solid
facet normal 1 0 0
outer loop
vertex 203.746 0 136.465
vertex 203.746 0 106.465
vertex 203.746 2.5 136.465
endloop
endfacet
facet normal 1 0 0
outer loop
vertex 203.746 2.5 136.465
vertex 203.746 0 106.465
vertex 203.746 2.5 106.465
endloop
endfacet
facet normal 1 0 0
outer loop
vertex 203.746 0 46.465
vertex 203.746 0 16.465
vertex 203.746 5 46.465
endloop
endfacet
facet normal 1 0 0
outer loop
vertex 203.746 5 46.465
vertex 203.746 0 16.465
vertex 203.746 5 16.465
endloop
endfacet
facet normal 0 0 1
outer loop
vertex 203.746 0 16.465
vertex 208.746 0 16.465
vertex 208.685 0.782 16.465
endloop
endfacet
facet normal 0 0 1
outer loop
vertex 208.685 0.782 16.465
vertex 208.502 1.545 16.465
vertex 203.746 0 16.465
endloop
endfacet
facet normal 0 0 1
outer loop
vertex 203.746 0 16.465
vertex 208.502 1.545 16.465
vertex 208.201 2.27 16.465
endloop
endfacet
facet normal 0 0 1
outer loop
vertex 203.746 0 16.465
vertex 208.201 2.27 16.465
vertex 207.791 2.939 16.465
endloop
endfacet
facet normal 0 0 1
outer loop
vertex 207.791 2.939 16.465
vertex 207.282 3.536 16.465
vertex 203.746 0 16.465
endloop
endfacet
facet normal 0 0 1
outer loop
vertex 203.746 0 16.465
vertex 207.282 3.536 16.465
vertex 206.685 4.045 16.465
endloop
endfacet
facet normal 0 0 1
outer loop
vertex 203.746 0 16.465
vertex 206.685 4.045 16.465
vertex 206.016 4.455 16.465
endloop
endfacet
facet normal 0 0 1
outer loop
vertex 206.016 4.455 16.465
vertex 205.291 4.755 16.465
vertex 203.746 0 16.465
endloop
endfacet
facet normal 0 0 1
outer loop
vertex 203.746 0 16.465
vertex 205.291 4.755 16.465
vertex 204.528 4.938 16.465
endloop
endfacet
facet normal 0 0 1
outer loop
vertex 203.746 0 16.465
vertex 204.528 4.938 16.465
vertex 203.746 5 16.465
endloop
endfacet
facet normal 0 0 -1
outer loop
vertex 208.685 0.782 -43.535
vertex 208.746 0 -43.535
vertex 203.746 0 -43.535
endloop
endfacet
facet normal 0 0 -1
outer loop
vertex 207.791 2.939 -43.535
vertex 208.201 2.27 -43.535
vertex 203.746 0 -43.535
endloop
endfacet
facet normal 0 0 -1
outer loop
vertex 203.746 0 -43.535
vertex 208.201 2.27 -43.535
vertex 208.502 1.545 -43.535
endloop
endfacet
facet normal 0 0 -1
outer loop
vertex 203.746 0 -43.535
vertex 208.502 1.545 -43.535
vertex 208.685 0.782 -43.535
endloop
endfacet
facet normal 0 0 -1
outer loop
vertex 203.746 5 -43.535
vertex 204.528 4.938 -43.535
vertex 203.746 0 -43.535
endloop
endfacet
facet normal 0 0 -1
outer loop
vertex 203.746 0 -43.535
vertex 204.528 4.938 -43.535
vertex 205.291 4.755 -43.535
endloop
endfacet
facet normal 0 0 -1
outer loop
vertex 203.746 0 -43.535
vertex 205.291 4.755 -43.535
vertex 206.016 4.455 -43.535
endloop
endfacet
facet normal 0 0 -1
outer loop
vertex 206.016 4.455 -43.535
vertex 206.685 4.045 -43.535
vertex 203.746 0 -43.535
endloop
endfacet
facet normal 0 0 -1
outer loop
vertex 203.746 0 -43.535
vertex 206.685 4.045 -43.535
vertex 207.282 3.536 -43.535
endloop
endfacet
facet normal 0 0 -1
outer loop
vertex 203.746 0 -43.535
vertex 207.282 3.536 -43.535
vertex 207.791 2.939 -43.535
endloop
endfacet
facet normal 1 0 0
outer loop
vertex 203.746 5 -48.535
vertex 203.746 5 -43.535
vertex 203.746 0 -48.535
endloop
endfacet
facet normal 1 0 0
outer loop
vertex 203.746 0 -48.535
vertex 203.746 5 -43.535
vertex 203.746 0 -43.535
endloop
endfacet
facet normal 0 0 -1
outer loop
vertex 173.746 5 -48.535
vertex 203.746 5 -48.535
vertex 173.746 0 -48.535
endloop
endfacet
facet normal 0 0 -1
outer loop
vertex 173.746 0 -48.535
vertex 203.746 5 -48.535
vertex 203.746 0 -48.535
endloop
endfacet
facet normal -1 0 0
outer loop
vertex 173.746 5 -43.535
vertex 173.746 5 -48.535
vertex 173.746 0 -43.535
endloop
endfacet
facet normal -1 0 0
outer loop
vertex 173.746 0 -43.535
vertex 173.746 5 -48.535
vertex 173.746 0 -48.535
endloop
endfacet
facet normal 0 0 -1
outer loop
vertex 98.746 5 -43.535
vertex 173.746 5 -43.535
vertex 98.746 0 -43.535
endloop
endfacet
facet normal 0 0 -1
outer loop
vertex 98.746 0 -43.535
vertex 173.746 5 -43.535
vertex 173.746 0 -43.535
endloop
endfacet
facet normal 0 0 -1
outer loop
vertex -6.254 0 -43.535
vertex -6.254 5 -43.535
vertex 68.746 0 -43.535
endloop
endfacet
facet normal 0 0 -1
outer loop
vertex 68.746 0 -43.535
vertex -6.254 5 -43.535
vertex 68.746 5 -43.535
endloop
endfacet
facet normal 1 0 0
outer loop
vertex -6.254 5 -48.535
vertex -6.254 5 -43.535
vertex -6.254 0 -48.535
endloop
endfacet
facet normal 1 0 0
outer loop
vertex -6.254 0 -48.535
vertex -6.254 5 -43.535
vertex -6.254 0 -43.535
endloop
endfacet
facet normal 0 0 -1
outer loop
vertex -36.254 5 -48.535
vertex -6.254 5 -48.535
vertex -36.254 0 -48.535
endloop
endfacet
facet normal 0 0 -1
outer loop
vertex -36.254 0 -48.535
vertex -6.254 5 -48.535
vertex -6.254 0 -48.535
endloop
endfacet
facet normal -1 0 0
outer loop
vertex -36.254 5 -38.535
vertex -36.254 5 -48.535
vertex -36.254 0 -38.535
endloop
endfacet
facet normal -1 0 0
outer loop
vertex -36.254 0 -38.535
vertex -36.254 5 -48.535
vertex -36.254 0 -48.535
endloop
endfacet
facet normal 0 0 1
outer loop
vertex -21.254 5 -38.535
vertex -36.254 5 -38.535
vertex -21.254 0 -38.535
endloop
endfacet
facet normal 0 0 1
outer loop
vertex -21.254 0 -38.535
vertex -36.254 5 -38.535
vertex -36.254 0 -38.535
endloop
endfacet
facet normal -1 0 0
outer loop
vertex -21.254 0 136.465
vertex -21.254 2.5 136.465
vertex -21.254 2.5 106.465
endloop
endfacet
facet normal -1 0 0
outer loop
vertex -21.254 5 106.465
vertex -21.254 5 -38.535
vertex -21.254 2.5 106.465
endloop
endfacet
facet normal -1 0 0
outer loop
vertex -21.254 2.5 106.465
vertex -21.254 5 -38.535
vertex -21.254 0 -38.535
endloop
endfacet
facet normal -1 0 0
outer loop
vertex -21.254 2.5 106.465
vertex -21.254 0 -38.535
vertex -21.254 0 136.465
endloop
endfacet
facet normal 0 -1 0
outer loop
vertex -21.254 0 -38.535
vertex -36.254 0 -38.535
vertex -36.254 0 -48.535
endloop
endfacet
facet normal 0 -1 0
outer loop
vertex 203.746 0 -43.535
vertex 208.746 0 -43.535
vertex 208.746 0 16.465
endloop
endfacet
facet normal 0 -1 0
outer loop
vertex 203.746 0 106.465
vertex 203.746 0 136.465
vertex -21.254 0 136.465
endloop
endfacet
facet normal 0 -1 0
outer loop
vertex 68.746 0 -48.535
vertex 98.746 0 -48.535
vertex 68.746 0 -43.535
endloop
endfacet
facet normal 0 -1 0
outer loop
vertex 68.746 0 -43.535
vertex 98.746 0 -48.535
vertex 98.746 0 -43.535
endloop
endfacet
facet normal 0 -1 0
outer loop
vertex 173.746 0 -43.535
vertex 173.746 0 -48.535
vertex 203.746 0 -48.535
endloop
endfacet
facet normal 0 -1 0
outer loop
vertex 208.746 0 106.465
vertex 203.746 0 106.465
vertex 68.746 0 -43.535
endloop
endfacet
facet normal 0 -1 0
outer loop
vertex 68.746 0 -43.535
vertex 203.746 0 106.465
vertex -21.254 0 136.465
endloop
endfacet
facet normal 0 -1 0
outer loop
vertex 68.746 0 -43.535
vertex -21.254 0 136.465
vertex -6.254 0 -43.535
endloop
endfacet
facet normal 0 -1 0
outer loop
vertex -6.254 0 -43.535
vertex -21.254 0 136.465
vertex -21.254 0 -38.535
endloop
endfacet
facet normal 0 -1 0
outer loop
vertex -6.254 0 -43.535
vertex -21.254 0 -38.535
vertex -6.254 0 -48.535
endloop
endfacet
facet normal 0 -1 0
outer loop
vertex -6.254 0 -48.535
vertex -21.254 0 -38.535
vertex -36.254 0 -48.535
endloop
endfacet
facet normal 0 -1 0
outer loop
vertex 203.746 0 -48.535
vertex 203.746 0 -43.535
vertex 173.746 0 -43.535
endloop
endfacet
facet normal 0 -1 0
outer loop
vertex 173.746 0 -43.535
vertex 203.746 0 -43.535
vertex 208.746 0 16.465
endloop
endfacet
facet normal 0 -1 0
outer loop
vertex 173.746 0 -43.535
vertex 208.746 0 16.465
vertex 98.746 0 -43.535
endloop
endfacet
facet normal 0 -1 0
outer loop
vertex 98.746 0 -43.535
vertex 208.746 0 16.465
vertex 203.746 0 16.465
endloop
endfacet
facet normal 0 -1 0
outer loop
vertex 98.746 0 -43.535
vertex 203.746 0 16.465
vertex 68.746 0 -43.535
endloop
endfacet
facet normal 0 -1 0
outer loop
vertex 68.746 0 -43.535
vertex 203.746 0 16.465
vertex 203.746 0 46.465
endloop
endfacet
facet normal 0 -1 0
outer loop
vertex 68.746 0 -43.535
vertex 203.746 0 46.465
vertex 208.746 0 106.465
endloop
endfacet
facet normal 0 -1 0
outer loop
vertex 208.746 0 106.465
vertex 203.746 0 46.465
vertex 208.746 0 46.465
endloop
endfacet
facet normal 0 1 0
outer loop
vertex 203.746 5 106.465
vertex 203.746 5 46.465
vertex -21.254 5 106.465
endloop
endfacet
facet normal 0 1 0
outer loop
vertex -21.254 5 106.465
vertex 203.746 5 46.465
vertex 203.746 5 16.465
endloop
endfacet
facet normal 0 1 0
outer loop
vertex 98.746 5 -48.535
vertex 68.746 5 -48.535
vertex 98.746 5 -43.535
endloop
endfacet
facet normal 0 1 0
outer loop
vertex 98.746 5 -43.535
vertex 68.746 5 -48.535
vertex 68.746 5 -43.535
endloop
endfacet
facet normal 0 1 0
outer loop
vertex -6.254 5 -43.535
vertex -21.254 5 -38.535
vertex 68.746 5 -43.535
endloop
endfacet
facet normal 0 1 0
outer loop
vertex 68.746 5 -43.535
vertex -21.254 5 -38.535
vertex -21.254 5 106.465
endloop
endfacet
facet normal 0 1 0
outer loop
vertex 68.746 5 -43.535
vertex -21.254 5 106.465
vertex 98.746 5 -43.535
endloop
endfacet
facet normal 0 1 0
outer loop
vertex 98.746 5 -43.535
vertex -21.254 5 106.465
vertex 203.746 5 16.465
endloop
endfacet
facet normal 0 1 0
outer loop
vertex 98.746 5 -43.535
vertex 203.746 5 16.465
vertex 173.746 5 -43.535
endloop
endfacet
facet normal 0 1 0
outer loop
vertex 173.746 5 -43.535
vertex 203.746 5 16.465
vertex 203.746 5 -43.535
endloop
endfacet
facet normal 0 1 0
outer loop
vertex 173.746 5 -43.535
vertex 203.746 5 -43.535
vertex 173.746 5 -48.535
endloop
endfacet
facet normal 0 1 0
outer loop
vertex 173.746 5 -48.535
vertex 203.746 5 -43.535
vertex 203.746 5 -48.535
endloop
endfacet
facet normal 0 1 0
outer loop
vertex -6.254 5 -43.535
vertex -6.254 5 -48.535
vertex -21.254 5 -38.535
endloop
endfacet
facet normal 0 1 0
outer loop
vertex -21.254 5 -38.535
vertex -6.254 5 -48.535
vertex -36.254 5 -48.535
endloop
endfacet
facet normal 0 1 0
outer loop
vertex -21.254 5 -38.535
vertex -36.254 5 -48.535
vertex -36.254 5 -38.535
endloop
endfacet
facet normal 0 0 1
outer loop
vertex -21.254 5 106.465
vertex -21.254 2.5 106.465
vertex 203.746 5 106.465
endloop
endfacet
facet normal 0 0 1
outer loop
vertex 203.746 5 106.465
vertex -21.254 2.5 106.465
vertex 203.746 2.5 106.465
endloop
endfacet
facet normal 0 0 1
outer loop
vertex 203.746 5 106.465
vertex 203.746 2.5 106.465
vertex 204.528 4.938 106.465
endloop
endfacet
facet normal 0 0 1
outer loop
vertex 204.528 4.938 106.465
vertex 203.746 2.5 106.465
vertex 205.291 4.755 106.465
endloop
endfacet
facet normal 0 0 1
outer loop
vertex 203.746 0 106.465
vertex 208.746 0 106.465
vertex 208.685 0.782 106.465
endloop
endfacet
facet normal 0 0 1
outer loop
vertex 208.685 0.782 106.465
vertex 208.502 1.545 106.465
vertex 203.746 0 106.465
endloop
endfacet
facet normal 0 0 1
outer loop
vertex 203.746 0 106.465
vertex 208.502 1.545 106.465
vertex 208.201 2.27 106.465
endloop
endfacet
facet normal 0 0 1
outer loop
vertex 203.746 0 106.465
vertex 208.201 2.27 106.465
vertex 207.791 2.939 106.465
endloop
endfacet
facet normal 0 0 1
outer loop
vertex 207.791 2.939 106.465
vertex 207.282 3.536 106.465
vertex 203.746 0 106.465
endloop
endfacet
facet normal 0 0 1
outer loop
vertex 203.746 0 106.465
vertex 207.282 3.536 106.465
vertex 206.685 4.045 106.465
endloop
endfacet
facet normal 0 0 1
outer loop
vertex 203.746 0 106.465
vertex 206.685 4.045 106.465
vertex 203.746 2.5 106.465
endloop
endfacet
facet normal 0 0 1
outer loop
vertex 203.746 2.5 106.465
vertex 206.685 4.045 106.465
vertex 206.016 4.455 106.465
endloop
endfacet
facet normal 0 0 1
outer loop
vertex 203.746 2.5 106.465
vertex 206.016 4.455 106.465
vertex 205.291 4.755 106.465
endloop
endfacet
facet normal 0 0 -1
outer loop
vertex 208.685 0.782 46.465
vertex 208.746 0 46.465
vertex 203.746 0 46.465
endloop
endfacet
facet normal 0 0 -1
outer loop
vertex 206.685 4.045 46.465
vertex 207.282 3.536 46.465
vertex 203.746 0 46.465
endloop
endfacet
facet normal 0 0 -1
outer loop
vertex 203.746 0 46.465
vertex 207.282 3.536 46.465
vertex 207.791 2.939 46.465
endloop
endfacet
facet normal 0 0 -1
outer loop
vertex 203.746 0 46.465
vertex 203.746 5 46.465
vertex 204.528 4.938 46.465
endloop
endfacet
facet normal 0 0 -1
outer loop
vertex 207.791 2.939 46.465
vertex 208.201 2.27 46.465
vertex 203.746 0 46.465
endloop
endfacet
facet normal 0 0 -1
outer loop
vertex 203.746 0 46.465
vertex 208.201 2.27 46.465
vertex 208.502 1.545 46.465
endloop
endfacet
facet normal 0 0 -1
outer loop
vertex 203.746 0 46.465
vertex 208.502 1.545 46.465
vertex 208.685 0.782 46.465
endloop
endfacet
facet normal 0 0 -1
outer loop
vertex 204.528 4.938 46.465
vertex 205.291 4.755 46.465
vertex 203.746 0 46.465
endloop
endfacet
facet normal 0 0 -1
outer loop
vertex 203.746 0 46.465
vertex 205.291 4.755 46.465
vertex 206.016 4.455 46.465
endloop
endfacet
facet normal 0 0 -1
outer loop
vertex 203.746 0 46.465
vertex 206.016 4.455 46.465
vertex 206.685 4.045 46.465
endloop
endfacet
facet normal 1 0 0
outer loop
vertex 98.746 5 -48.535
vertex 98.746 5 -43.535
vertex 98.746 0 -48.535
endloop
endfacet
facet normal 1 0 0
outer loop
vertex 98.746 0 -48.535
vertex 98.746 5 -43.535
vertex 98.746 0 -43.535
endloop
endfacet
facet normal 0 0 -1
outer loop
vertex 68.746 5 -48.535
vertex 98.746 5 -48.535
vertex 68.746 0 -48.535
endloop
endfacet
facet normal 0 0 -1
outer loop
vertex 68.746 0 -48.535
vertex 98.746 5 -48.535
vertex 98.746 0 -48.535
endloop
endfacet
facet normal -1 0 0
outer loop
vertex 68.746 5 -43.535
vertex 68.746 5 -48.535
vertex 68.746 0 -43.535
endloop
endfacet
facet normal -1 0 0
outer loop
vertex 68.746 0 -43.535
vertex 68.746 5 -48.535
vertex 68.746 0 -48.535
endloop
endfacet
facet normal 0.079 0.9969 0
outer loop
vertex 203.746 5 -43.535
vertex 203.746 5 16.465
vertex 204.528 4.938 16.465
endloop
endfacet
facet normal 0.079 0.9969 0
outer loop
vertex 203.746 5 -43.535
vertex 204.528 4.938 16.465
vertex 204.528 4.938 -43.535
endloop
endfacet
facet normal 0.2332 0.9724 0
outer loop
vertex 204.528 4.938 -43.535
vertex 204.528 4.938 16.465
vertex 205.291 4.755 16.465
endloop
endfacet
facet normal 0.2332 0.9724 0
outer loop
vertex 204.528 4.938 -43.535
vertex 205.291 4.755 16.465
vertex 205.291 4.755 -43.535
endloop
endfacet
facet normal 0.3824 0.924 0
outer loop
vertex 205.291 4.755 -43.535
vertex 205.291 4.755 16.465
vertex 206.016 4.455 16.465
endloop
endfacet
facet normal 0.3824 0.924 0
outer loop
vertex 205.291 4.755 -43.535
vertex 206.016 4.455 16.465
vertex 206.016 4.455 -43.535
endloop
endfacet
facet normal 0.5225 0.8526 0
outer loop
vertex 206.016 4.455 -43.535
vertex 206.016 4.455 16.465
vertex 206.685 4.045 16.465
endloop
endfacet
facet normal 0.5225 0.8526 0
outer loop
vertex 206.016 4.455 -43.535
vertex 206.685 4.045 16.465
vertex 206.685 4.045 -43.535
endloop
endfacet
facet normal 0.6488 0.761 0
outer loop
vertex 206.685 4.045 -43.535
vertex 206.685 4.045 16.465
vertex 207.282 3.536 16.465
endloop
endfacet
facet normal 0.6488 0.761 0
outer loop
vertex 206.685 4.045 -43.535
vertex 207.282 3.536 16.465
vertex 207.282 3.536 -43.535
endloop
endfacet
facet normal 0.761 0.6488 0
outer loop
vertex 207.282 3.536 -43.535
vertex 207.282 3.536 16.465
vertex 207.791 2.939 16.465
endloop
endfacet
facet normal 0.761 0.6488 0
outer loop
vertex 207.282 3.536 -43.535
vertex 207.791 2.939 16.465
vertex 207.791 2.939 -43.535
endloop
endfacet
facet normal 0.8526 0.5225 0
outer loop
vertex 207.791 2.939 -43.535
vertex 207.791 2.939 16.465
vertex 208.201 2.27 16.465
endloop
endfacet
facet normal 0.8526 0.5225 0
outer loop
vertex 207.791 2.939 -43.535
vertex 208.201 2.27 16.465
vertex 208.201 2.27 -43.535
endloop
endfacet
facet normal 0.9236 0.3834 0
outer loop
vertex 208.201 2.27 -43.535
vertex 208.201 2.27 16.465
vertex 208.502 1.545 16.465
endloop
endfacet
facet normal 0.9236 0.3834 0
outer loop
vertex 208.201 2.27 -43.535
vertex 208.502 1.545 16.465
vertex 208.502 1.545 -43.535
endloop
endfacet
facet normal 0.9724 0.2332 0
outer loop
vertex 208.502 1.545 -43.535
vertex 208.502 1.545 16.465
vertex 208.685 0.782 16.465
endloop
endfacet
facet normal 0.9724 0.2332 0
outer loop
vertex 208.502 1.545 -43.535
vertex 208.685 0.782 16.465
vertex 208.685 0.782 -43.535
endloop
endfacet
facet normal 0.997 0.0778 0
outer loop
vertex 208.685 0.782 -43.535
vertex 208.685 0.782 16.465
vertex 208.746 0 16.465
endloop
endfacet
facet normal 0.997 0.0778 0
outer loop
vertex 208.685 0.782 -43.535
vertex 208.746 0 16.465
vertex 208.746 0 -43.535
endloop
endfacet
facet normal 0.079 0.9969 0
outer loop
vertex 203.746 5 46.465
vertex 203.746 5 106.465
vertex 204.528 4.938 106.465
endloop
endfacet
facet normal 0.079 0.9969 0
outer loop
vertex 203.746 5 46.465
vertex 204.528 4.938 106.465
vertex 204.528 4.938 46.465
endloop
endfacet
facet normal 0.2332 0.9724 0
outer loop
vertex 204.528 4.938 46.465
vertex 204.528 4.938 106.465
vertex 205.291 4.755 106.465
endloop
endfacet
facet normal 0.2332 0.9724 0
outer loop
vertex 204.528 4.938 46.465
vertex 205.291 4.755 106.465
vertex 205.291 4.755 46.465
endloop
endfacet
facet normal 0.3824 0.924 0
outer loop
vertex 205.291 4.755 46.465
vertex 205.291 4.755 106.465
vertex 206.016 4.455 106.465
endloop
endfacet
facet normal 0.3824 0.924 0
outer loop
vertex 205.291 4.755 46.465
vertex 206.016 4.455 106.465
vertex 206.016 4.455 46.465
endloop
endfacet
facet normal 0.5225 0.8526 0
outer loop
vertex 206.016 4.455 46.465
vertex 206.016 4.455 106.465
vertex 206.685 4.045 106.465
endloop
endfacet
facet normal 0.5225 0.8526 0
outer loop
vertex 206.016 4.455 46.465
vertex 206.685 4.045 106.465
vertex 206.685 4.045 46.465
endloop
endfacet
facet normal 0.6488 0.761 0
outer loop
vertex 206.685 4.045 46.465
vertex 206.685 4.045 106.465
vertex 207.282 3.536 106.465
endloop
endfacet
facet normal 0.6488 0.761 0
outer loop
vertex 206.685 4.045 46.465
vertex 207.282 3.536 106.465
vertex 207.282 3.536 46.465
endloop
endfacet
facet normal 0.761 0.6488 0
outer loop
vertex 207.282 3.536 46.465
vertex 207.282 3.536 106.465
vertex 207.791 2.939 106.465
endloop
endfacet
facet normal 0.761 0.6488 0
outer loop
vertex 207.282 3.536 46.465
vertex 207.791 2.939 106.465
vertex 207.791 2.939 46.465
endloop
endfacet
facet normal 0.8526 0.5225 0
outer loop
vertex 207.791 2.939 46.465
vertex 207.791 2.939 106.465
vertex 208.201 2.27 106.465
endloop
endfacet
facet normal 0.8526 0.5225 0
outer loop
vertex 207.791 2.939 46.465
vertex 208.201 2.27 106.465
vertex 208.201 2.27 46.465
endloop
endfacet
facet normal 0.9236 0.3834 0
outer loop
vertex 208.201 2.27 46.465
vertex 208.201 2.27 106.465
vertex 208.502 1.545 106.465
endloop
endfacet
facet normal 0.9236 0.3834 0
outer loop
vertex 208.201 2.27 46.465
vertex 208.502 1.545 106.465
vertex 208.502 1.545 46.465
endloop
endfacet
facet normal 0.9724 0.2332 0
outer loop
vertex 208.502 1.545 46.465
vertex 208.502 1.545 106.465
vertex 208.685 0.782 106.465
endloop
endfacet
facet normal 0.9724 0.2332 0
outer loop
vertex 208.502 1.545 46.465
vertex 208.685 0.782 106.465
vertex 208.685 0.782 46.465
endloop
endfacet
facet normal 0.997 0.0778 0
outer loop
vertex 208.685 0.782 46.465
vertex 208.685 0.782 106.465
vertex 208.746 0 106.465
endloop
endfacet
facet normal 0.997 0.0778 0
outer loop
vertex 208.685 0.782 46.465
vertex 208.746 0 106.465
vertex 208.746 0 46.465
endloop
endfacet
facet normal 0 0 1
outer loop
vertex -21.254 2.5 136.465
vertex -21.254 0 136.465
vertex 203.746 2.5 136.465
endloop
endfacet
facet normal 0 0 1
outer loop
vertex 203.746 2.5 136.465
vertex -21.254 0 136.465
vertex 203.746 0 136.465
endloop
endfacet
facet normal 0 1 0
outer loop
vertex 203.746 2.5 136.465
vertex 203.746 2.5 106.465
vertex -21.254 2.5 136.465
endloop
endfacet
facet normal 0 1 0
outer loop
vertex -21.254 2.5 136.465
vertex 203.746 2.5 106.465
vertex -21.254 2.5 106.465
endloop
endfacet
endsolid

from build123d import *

# Parameters (mm, degrees)
SKETCH_1_W          = 5
SKETCH_1_H          = 60
SKETCH_1_W_2        = 30
SKETCH_1_H_2        = 5
SKETCH_1_W_3        = 15
EXTRUDE_1_DEPTH     = 5
FILLET_1_R          = 5
SKETCH_2_W          = 239.490005879
SKETCH_2_H          = 154.751616696
CUT_EXTRUDE_1_DEPTH = 355.488579047
SKETCH_3_W          = 30
SKETCH_3_H          = 2.5
CUT_EXTRUDE_2_DEPTH = 277.129805813


with BuildPart() as part:
    # 草圖1 → 填料-伸長1 (new body)
    with BuildSketch(Plane(origin=(0, 0, 0), x_dir=(1, 0, 0), z_dir=(0, 1, 0))):
        Polygon((198.746286718, -286.464902661), (198.746286718, -256.464902661), (183.246286718, -256.464902661), (183.246286718, -266.464902661), (124.746286718, -266.464902661), (124.746286718, -262.464902661), (109.246286718, -262.464902661), (109.246286718, -266.464902661), (-21.253713282, -266.464902661), (-21.253713282, 38.535097339), (-36.253713282, 38.535097339), (-36.253713282, 43.535097339), (203.746286718, 43.535097339), (203.746286718, -286.464902661), align=None)
        with Locations((206.246286718, -256.464902661)):
            Rectangle(SKETCH_1_W, SKETCH_1_H)
        with Locations((206.246286718, 13.535097339)):
            Rectangle(SKETCH_1_W, SKETCH_1_H)
        with Locations((188.746286718, 46.035097339)):
            Rectangle(SKETCH_1_W_2, SKETCH_1_H_2)
        with Locations((-21.253713282, 46.035097339)):
            Rectangle(SKETCH_1_W_2, SKETCH_1_H_2)
        with Locations((91.246286718, 46.035097339)):
            Rectangle(SKETCH_1_W_3, SKETCH_1_H_2)
        with Locations((76.246286718, 46.035097339)):
            Rectangle(SKETCH_1_W_3, SKETCH_1_H_2)
        with Locations((206.246286718, -166.464902661)):
            Rectangle(SKETCH_1_W, SKETCH_1_H)
        with Locations((206.246286718, -76.464902661)):
            Rectangle(SKETCH_1_W, SKETCH_1_H)
    extrude(amount=EXTRUDE_1_DEPTH)

    # 圓角1
    fillet_1_edges = [part.edges().sort_by_distance(p)[0] for p in [
        (208.746286718, 5, -13.535097339),
        (208.746286718, 5, 76.464902661),
        (208.746286718, 5, 166.464902661),
        (208.746286718, 5, 256.464902661),
    ]]
    fillet(fillet_1_edges, radius=FILLET_1_R - 0.0001)  # a hair under: the kernel refuses the full size

    # 草圖2 → 除料-伸長1 (cut, through all)
    with BuildSketch(Plane(origin=(0, 5, 0), x_dir=(1, 0, 0), z_dir=(0, 1, 0))):
        with Locations((89.001283779, -213.840711009)):
            Rectangle(SKETCH_2_W, SKETCH_2_H)
    extrude(amount=-CUT_EXTRUDE_1_DEPTH, mode=Mode.SUBTRACT)

    # 草圖3 → 除料-伸長2 (cut, through all)
    with BuildSketch(Plane(origin=(203.746286718, 0, 0), x_dir=(0, 0, -1), z_dir=(1, 0, 0))):
        with Locations((-121.464902661, 3.75)):
            Rectangle(SKETCH_3_W, SKETCH_3_H)
    extrude(amount=-CUT_EXTRUDE_2_DEPTH, mode=Mode.SUBTRACT)


solid = part.part
